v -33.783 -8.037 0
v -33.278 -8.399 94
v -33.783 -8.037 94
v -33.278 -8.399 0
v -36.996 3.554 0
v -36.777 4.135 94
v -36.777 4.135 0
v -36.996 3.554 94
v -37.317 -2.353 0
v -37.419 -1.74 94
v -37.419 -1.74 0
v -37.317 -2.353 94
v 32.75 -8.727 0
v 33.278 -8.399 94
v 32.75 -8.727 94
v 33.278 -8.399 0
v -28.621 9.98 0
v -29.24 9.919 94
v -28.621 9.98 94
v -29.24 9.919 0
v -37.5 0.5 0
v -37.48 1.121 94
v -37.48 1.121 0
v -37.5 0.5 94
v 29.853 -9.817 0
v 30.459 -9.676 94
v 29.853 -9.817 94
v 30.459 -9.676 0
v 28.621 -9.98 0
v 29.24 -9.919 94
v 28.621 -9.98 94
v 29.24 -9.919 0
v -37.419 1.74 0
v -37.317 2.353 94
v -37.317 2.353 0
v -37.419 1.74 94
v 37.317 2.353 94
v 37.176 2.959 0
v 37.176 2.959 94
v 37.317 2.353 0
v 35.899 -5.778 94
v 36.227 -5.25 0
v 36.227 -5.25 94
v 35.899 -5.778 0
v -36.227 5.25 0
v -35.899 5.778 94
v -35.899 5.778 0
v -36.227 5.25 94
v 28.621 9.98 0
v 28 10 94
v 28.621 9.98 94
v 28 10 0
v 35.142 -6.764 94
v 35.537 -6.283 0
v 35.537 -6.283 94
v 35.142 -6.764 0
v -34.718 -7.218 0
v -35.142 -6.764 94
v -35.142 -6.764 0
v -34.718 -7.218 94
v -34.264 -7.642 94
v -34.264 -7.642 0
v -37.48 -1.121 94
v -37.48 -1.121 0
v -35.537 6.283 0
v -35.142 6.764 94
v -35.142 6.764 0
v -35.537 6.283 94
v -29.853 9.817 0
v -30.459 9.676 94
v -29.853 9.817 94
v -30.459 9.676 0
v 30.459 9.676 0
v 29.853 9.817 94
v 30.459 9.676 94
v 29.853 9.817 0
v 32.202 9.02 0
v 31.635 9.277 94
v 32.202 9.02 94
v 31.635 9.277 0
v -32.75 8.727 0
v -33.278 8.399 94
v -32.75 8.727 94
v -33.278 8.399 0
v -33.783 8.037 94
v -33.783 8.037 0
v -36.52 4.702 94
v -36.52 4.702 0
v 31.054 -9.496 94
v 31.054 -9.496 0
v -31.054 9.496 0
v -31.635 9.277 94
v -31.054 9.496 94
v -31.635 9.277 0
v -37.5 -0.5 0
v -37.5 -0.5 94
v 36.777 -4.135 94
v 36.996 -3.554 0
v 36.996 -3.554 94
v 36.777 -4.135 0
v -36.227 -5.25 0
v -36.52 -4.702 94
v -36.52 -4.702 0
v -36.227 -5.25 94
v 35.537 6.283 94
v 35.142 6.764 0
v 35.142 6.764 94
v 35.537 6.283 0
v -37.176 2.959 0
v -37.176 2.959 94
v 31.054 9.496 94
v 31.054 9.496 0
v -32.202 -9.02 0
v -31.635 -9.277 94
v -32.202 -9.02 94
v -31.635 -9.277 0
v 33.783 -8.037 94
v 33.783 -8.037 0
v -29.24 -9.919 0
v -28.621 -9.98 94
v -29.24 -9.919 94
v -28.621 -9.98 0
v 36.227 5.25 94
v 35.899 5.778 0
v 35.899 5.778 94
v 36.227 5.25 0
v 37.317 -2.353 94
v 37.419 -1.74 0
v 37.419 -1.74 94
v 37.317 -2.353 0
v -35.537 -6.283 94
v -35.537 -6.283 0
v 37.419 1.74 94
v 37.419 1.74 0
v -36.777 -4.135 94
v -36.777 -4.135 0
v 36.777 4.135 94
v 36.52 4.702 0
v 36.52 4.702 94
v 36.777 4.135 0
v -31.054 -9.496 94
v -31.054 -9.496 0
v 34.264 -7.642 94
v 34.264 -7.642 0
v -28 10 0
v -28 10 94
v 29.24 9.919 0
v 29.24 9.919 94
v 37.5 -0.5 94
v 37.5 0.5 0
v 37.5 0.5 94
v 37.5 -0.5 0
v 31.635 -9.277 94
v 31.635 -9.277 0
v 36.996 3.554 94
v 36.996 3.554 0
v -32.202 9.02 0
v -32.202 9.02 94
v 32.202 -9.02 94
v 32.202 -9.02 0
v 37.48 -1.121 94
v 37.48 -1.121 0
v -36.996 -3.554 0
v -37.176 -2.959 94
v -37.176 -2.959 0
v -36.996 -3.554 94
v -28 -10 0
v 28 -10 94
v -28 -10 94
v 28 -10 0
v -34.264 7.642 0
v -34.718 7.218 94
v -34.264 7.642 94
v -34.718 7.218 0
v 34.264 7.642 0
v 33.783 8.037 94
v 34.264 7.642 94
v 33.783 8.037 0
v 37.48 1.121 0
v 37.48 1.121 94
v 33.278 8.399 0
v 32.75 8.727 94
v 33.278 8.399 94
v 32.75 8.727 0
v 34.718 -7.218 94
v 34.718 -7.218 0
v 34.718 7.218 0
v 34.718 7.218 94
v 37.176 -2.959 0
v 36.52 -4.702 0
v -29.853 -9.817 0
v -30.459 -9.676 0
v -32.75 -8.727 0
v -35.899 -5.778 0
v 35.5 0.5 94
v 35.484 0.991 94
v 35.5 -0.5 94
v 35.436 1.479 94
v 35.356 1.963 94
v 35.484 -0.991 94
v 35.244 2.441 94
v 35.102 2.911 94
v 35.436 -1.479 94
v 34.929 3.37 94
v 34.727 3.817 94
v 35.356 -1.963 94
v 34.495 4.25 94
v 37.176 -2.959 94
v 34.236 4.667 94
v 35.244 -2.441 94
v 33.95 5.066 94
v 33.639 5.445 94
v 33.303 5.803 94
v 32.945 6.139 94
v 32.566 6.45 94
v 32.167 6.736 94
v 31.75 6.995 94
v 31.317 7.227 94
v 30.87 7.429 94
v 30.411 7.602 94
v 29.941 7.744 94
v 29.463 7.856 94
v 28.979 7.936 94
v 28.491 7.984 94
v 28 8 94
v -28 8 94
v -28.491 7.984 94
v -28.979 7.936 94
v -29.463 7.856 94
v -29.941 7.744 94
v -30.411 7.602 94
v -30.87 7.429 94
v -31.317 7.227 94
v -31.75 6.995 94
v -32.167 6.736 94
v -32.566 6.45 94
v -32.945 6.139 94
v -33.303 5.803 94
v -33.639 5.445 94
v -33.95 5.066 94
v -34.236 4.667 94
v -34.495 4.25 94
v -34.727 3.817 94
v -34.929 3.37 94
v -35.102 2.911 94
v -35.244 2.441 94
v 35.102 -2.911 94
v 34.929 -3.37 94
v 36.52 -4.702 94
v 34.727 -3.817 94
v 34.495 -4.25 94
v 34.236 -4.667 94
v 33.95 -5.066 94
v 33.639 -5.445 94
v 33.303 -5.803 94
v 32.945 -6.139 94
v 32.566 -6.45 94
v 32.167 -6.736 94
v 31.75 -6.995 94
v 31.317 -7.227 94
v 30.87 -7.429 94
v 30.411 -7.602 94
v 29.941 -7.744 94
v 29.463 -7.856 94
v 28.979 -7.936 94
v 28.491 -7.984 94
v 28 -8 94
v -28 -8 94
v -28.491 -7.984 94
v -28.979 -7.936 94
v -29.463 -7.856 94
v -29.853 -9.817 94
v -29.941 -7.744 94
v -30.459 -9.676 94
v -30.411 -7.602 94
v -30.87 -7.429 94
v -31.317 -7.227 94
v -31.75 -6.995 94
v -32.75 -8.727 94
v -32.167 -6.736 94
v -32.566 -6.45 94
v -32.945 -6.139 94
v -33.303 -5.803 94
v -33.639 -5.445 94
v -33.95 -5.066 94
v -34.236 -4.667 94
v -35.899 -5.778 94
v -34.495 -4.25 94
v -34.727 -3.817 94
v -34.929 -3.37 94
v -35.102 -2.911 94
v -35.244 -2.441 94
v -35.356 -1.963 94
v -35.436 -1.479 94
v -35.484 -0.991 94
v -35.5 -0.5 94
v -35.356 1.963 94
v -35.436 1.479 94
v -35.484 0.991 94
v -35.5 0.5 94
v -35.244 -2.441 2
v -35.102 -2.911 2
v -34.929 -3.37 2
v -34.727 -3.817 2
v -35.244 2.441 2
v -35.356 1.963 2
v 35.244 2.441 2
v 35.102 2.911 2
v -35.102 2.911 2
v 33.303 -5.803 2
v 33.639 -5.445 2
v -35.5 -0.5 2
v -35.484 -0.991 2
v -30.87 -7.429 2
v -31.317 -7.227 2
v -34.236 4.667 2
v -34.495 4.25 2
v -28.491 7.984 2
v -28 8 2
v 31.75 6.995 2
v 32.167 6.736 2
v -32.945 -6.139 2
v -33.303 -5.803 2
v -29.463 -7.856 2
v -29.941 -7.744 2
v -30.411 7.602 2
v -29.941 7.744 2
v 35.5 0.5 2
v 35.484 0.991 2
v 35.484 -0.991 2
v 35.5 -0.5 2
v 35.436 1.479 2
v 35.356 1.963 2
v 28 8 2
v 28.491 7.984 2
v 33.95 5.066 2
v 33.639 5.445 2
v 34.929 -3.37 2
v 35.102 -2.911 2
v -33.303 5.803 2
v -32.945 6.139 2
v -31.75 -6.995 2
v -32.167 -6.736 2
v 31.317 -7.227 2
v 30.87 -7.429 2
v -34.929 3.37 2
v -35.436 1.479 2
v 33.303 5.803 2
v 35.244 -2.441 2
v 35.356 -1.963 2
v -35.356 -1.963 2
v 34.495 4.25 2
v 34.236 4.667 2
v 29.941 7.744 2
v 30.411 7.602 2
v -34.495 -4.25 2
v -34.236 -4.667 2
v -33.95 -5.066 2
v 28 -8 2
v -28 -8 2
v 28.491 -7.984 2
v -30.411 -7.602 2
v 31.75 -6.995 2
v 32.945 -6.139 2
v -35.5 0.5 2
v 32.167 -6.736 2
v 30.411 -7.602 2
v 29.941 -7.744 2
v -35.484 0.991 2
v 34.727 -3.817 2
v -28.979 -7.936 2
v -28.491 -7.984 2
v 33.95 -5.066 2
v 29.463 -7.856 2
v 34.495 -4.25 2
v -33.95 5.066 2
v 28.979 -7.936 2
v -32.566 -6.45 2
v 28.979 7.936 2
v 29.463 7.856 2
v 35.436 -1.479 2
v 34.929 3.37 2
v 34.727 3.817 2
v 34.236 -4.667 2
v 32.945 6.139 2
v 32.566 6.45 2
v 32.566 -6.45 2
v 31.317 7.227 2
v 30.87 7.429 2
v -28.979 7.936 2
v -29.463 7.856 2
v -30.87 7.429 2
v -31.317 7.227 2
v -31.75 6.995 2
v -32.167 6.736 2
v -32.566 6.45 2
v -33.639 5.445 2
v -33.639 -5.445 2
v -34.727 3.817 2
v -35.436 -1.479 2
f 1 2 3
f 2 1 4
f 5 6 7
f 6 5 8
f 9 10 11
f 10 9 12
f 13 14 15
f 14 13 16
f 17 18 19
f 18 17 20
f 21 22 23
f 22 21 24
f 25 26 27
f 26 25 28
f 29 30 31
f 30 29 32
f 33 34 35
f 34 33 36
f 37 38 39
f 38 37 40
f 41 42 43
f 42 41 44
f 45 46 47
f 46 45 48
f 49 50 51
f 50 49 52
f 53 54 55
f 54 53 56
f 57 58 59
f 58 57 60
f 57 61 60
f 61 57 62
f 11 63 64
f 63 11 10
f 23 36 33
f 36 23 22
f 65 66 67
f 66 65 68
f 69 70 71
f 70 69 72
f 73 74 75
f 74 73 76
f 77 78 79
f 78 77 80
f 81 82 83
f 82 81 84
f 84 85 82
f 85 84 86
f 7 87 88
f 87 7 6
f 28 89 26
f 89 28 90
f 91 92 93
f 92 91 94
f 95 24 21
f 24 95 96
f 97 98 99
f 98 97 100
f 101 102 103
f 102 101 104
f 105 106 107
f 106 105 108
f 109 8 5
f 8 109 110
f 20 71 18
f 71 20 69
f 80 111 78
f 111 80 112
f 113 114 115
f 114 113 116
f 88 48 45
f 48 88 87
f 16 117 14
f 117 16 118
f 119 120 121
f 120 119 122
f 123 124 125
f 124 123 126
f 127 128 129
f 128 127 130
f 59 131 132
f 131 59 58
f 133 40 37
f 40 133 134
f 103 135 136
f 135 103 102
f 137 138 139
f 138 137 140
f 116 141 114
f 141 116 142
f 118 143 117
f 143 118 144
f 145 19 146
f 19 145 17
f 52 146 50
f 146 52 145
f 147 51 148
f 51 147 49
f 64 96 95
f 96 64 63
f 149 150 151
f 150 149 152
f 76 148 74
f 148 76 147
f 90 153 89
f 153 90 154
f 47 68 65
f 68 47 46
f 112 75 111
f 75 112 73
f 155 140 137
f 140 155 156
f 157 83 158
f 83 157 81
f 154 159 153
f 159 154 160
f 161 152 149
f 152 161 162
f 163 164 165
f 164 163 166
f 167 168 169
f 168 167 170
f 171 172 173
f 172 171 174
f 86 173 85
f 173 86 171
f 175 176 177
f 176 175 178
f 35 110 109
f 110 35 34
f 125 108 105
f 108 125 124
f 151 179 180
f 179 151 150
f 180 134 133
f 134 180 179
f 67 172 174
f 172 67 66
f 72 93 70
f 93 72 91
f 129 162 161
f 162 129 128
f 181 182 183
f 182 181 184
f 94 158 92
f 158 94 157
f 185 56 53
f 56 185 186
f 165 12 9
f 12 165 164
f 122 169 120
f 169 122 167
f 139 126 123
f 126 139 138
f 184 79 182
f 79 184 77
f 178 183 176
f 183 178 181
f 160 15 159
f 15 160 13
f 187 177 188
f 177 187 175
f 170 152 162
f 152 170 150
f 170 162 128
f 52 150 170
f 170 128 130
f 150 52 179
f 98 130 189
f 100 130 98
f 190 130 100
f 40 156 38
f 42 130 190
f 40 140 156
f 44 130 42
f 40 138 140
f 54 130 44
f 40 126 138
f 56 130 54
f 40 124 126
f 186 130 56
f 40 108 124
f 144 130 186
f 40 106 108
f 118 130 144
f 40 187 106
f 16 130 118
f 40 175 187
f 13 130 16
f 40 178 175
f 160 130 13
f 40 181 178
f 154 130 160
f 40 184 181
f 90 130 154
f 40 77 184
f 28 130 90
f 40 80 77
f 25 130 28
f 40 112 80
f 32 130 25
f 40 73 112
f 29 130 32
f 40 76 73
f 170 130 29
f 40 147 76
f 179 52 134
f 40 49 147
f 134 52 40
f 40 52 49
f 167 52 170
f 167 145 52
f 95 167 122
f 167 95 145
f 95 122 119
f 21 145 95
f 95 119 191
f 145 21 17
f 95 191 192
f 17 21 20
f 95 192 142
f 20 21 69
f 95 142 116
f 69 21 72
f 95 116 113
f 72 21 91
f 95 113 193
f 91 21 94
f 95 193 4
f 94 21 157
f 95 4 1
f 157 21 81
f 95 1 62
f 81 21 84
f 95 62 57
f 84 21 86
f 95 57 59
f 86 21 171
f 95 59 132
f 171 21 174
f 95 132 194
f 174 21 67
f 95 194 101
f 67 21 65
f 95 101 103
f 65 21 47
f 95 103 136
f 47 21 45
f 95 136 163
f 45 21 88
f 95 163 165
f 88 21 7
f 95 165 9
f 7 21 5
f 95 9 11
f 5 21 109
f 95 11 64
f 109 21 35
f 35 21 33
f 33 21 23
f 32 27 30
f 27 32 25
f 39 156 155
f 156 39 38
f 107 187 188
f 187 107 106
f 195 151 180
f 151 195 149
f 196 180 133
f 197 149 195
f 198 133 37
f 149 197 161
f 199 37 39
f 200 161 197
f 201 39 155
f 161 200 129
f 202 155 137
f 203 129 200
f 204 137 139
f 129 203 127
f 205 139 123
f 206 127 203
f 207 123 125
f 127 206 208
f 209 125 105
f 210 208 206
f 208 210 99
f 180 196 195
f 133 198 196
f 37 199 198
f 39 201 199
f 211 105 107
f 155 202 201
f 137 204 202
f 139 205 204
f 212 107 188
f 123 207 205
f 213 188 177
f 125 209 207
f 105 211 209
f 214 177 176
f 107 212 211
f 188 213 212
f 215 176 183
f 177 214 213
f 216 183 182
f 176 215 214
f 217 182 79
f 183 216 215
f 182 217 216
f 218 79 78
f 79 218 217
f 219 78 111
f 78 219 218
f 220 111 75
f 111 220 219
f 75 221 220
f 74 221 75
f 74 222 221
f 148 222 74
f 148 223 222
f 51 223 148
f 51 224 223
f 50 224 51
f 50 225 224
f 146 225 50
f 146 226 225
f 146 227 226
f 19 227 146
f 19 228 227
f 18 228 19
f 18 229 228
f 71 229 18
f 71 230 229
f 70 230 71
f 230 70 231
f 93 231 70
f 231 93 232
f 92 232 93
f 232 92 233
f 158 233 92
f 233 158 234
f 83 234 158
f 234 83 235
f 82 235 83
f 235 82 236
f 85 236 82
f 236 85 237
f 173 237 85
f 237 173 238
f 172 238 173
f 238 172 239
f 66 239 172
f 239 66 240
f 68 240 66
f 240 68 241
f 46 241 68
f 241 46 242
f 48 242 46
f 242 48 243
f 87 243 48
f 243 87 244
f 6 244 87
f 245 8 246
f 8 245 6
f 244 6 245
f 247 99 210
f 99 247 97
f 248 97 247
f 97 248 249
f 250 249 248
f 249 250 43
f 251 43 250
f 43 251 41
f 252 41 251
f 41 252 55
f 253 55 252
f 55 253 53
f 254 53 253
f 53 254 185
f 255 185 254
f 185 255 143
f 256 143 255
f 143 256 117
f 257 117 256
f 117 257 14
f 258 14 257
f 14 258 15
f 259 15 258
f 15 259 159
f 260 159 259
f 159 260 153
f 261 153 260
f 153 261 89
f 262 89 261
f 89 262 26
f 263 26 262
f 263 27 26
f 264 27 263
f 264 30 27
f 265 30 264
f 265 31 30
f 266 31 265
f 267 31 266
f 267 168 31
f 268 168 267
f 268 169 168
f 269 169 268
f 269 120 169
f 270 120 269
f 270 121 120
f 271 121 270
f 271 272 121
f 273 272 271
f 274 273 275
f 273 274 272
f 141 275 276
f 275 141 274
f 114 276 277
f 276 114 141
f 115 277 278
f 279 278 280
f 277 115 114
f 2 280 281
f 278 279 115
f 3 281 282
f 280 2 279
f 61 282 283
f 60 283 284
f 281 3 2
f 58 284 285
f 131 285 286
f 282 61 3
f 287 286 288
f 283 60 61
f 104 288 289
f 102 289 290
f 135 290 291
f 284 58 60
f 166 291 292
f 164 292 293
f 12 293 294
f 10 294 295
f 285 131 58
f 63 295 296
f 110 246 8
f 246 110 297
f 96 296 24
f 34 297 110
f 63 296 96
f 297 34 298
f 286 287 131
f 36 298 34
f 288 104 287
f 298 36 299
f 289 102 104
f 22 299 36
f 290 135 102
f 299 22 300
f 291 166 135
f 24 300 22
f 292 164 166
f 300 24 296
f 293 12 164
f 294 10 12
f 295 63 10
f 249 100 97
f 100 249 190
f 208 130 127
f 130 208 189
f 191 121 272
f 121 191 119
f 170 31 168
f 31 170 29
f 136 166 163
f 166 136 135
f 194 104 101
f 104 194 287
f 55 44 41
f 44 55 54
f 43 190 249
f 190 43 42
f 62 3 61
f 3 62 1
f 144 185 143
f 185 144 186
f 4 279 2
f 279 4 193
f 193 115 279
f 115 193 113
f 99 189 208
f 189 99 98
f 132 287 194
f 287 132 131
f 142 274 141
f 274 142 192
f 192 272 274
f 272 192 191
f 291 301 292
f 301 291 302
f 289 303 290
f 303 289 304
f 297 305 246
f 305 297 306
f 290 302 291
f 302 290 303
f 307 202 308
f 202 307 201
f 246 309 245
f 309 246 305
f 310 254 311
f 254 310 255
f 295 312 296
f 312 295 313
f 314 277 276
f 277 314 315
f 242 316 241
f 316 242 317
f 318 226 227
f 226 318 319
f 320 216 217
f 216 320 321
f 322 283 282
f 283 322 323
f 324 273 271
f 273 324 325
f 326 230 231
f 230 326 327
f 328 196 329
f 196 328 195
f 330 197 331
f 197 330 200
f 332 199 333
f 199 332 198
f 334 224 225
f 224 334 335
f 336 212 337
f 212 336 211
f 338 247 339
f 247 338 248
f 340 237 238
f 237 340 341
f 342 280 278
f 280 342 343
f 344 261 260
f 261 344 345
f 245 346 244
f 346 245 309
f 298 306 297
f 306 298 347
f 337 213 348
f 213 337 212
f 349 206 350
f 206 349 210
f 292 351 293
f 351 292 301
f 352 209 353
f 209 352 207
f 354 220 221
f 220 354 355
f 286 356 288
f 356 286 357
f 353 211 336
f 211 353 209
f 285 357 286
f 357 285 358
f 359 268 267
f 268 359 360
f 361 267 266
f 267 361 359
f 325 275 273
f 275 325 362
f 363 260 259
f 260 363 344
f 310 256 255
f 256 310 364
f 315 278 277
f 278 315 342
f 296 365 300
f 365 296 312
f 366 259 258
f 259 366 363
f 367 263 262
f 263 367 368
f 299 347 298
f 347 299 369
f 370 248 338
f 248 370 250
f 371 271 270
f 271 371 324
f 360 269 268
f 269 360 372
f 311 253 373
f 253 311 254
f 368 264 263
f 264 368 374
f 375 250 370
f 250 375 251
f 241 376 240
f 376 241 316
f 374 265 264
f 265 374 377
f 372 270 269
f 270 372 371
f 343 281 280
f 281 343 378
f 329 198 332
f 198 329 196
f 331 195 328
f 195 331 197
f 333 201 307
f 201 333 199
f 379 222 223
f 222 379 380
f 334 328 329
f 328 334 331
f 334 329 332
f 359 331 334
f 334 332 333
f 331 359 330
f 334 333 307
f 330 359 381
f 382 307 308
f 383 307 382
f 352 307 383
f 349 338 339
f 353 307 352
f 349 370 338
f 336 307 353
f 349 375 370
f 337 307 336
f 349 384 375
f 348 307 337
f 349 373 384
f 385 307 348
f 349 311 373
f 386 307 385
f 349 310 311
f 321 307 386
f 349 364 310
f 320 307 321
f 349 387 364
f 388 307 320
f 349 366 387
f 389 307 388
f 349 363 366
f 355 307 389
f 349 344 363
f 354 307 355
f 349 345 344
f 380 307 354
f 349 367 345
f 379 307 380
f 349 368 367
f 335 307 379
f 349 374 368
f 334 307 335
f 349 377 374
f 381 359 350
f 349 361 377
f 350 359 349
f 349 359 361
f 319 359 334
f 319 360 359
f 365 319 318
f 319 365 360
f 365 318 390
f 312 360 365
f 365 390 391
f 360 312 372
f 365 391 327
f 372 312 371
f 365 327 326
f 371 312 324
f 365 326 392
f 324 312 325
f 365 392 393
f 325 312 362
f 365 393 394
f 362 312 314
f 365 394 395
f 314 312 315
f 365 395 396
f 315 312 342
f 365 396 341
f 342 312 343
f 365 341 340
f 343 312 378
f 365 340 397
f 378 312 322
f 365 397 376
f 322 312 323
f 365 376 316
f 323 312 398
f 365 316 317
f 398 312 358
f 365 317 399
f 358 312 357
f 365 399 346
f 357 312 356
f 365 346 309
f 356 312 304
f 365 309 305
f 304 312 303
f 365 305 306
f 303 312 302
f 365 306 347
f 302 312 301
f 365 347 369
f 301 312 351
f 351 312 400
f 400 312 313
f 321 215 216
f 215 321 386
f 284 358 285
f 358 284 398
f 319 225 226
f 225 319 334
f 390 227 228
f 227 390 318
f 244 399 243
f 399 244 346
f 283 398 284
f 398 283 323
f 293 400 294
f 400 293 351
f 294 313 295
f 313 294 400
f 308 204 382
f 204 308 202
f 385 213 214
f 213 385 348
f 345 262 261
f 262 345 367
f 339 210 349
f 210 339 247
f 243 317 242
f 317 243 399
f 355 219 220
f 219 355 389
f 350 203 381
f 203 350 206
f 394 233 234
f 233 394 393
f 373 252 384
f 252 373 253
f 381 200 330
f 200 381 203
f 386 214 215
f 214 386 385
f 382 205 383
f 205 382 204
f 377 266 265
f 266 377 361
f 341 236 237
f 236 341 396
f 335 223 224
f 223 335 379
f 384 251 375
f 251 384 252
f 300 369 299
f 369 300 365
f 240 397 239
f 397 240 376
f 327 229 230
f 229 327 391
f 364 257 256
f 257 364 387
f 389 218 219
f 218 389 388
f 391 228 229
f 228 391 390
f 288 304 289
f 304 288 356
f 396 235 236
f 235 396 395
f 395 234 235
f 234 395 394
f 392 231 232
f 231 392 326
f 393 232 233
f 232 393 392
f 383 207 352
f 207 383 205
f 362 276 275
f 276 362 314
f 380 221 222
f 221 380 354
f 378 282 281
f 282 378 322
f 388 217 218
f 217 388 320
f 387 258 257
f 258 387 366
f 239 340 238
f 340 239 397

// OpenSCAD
// ============================================================================
//  INIU B1-B6 power bank - partial cover / sleeve
//
//  Slides onto the lower "A" region of the power bank and covers it: both
//  large faces, the two long side edges, and the closed bottom end.  The top
//  is open so the black display + ports section stays exposed.
//
//  NOTE: the power bank size below is from published specs (136 x 70 x 15 mm).
//  Measure YOUR unit with calipers and adjust pb_w / pb_t / pb_r / cover_h for
//  a good fit before printing.
//
//  Render targets (set with -D part="..."):
//    "cover" - the printable sleeve
//    "demo"  - sleeve + a ghost of the power bank (visualisation)
// ============================================================================

part = "cover";

/* [Power bank] */
pb_l = 136;   // total length
pb_w = 70;    // width
pb_t = 15;    // thickness
pb_r = 7;     // cross-section corner radius (rounded long edges)

/* [Cover] */
cover_h = 92;   // how far up the bank the sleeve reaches (the white "A" region)
wall    = 2.0;  // side-wall thickness
floor_t = 2.0;  // closed bottom-end thickness
clr     = 0.5;  // fit clearance (per side)

$fn = 96;

// centred rounded rectangle: w x t, corner radius r
module rrect(w, t, r) {
    hull() for (sx = [-1, 1], sy = [-1, 1])
        translate([sx*(w/2 - r), sy*(t/2 - r)]) circle(r);
}

// the power bank as a rounded slab of the given length (bottom at z=0)
module powerbank(len) {
    linear_extrude(len) rrect(pb_w, pb_t, pb_r);
}

// the sleeve: a rounded pocket, closed at the bottom, open at the top
module cover() {
    iw = pb_w + 2*clr;   it = pb_t + 2*clr;   ir = pb_r + clr;    // inner cavity
    ow = iw + 2*wall;    ot = it + 2*wall;    or = ir + wall;     // outer shell
    difference() {
        linear_extrude(cover_h + floor_t) rrect(ow, ot, or);
        translate([0, 0, floor_t])
            linear_extrude(cover_h + 1) rrect(iw, it, ir);
    }
}

if (part == "cover")
    cover();
else {                                  // demo / visualisation
    cover();
    color([0.25, 0.25, 0.25, 0.35])
        translate([0, 0, floor_t + clr]) powerbank(pb_l);
}
